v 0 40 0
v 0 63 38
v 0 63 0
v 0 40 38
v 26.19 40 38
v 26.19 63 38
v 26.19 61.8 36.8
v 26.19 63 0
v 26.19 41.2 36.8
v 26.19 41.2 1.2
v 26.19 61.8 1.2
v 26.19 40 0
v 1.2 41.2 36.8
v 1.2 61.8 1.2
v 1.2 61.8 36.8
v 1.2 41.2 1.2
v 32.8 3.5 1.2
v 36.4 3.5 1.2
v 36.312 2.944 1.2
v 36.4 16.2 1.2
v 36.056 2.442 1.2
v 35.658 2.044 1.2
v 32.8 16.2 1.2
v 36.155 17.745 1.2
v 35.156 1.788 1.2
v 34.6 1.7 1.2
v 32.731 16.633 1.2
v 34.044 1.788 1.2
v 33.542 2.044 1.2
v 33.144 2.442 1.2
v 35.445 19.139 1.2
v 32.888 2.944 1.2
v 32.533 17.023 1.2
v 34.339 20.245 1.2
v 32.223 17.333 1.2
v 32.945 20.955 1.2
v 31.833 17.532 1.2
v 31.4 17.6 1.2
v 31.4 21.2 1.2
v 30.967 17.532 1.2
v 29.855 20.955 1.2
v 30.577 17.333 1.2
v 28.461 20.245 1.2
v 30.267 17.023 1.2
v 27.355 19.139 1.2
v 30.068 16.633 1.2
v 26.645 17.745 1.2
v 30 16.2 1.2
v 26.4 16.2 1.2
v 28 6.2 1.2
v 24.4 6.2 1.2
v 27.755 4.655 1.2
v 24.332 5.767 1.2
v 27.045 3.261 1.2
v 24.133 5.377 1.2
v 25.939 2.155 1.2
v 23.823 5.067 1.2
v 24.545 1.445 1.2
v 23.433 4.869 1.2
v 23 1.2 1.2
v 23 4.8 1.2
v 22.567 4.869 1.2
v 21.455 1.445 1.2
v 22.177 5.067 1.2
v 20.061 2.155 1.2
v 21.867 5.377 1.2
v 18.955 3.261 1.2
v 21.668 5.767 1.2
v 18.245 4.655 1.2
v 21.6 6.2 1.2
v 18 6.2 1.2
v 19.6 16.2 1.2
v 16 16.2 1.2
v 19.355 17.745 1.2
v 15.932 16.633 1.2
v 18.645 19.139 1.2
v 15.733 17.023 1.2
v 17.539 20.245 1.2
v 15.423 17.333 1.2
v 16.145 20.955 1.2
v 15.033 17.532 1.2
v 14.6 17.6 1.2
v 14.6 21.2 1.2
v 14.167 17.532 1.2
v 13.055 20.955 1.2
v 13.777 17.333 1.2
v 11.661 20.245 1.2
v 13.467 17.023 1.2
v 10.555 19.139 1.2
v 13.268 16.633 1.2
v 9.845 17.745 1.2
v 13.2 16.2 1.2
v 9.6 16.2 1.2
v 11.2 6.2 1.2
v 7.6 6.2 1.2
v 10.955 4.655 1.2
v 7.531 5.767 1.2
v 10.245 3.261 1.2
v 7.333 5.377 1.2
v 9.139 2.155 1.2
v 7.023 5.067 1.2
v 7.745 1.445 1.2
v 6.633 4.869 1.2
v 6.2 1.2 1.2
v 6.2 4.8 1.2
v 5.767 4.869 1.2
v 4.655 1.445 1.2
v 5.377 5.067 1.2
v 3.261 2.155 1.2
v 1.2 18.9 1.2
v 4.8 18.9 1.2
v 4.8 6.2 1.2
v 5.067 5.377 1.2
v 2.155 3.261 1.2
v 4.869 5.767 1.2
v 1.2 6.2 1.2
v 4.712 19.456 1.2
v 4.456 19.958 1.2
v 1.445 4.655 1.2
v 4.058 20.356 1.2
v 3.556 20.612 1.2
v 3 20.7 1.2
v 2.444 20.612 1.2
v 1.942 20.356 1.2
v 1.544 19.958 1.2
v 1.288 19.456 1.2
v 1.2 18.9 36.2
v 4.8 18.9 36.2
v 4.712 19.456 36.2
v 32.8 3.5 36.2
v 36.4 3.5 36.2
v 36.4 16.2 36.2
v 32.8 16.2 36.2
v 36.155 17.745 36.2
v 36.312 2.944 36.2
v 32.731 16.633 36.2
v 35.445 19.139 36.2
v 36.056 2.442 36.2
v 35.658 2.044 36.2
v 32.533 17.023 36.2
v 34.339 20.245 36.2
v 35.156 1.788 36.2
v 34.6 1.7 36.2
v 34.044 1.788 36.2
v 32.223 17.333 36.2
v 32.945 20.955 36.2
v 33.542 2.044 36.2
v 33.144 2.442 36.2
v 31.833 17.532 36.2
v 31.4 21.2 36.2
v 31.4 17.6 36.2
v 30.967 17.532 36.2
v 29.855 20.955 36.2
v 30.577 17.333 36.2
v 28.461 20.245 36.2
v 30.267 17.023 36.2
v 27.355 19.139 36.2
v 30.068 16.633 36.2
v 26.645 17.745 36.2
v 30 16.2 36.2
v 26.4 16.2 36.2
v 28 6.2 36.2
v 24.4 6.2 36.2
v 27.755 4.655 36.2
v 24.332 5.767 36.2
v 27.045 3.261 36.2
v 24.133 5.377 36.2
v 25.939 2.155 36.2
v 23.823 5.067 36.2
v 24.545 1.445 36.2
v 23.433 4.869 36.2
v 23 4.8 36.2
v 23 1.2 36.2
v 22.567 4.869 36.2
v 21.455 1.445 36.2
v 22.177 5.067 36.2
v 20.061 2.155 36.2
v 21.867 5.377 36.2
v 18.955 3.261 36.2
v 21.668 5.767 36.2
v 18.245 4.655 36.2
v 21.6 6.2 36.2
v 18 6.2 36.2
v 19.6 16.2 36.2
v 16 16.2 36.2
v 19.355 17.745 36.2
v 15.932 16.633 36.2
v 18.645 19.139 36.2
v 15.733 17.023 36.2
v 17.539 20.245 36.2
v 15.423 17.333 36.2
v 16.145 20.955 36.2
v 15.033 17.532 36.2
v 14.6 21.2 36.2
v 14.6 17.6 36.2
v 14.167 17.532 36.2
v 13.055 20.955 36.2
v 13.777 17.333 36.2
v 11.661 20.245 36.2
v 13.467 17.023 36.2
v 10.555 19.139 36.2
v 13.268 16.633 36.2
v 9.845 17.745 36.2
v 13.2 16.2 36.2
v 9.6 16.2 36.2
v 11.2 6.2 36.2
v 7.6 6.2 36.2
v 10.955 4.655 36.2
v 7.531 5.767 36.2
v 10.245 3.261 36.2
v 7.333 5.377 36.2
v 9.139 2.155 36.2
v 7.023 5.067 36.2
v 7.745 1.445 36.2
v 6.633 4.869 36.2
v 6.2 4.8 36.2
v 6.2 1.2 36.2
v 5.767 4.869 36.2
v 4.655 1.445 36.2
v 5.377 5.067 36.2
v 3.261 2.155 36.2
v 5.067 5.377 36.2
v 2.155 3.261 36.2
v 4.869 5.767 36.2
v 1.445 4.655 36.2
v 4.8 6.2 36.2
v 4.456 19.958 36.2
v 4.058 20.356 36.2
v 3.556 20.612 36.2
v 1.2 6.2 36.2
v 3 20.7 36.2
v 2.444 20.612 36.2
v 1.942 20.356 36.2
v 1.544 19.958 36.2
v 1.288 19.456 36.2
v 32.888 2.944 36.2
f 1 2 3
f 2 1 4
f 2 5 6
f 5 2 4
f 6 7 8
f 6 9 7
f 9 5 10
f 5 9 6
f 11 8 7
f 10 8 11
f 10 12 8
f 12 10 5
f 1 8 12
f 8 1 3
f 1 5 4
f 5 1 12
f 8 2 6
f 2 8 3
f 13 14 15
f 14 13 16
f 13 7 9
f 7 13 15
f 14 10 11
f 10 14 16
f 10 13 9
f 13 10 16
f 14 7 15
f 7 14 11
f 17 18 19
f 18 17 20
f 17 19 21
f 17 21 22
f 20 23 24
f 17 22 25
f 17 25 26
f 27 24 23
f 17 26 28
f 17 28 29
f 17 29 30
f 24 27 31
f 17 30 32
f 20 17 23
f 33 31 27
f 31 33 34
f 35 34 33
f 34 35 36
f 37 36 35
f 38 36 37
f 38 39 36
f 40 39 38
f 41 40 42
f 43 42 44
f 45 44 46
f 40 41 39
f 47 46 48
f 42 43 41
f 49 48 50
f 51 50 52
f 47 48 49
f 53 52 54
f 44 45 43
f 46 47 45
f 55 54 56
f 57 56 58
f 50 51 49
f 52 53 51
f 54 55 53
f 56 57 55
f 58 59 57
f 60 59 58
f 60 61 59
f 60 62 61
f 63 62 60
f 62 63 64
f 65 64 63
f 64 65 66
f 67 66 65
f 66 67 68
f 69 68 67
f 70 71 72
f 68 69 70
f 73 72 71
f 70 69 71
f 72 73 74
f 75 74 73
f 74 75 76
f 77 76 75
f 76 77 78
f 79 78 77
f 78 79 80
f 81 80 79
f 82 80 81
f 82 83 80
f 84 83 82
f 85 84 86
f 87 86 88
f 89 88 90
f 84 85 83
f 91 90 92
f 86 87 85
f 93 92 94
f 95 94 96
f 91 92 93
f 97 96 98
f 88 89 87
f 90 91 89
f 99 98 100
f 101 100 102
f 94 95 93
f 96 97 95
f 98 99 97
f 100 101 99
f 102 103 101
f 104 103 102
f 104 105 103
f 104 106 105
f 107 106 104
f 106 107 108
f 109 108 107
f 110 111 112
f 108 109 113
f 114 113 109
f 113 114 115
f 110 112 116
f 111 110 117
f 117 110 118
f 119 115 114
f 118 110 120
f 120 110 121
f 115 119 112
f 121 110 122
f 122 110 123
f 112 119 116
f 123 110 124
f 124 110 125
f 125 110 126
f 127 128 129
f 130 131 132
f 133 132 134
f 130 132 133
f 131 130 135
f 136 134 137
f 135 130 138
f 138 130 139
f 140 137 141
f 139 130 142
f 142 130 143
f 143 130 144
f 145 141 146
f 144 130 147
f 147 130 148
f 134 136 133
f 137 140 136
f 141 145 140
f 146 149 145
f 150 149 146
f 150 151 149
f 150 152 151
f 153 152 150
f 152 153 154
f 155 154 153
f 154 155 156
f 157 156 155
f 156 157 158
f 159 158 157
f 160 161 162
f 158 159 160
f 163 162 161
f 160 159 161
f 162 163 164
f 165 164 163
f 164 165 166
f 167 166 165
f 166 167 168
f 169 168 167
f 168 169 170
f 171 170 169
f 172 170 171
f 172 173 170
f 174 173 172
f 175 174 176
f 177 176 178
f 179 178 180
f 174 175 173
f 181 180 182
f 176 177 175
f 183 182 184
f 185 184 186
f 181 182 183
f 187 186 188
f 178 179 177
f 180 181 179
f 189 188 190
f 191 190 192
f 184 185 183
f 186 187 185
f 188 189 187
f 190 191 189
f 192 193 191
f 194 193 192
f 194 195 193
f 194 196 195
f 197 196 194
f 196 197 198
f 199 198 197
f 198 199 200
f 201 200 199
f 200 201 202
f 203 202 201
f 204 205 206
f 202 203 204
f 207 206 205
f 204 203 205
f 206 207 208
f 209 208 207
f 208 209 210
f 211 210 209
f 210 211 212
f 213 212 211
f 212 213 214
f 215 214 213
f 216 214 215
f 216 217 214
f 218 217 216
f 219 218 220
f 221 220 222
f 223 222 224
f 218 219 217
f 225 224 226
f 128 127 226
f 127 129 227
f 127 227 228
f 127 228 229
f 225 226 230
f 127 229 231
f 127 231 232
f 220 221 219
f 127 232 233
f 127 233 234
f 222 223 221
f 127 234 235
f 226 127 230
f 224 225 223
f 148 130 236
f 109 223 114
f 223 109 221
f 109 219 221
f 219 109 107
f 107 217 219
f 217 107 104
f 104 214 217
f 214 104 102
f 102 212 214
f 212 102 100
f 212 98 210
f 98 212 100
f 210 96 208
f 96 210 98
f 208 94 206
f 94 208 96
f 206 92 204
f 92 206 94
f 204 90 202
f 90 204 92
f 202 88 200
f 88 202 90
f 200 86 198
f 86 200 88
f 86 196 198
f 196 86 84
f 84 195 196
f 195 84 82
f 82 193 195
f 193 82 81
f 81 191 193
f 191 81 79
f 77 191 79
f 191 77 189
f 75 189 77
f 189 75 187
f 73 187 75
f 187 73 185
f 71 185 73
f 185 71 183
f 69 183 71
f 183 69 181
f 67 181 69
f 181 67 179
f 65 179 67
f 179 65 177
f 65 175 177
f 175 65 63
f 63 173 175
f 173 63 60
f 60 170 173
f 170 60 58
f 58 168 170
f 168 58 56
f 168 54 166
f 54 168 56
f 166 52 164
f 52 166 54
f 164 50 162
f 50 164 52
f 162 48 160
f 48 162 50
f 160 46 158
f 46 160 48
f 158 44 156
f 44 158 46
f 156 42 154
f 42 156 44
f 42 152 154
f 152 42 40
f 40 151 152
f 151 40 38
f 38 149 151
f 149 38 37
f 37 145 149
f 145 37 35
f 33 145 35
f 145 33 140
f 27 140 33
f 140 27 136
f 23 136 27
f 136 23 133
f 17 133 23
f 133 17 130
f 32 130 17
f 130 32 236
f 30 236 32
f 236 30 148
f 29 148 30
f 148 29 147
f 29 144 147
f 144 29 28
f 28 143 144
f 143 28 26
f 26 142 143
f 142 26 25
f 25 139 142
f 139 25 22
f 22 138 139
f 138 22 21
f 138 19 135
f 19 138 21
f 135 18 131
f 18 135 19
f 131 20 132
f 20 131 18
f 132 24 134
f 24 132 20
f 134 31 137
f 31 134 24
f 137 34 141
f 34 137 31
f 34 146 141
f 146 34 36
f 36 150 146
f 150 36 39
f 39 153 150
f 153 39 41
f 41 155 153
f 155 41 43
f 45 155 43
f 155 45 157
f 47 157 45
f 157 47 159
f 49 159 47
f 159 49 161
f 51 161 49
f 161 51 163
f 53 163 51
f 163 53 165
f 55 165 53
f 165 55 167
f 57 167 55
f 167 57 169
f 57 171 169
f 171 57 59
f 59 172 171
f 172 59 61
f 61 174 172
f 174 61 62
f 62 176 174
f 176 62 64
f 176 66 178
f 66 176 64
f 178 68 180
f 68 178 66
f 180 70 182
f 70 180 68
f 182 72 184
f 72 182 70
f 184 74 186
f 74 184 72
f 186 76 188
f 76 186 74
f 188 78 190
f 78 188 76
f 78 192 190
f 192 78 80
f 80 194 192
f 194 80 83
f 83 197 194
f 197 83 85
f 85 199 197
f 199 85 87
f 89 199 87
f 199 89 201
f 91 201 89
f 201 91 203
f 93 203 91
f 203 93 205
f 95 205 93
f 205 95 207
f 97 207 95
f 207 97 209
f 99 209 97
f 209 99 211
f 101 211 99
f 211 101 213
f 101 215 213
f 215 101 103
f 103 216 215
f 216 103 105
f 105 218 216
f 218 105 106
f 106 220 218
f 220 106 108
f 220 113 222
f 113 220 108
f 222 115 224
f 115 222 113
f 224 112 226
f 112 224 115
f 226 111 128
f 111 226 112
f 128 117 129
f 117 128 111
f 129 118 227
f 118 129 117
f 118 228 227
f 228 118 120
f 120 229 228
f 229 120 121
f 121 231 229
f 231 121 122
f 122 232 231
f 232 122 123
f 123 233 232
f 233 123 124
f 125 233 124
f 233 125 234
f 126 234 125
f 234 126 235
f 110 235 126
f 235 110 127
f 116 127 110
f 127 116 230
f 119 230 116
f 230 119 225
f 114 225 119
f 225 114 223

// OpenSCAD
// file: ../lib/flat spring.scad
FlatSpring(10, 3, 1, 2, 15, 15, $fn=25);

%cube([FlatSpringLength(10, 3, 1, 2), 1, 15]);

function FlatSpringLength(outer_diameter, wall_thickness, offset_per_loop, loops) = (offset_per_loop*2+(outer_diameter+(outer_diameter - wall_thickness*2)))*loops + (outer_diameter - wall_thickness*2)/2;

module FlatSpring(outer_diameter, wall_thickness, offset_per_loop, loops, width2, height) {
	width = width2 - outer_diameter;
	inner_diameter = outer_diameter - wall_thickness*2;
	per_pair_translate = offset_per_loop*2+(outer_diameter+inner_diameter);
	
	linear_extrude(height) translate([outer_diameter/2, outer_diameter/2]) {
		for (i = [0:loops-1]) {
			translate([per_pair_translate*i,0,0])
			FlatSpringLoopPair(outer_diameter, inner_diameter, wall_thickness, width, offset_per_loop, i == loops-1);
		}
		
		translate([-(wall_thickness+inner_diameter/2), 0, 0]) {
			FlatSpringAcrossEnd(wall_thickness, offset_per_loop, width-0.5, outer_diameter);
		}
		translate([(per_pair_translate*loops)-outer_diameter/2-offset_per_loop, width, 0])  rotate([180,0,0]) {
			FlatSpringAcrossEnd(wall_thickness, offset_per_loop, width-0.5, outer_diameter);
		}
	}
}

module FlatSpringLoopPair(outer_diameter, inner_diameter, wall_thickness, width, offset_per_loop, noend) {
	FlatSpringLoop(outer_diameter, inner_diameter);
	
	translate([inner_diameter/2, 0, 0])
	FlatSpringAcross(wall_thickness, offset_per_loop, width);
	
	translate([offset_per_loop+outer_diameter/2+inner_diameter/2, width, 0]) rotate([180,0,0])
	union() {
		FlatSpringLoop(outer_diameter, inner_diameter);
		if (!noend) {
			translate([inner_diameter/2, 0, 0])
			FlatSpringAcross(wall_thickness, offset_per_loop, width);
		}
	}
}

module FlatSpringAcross(wall_thickness, offset_per_loop, width) {
	polygon([[0,0], [wall_thickness, 0], [wall_thickness+offset_per_loop, width], [offset_per_loop, width]]);
}

module FlatSpringAcrossEnd(wall_thickness, offset_per_loop, width, outer_diameter) {
	FlatSpringAcross(wall_thickness, 0, width+outer_diameter/2-wall_thickness/2);
	translate([wall_thickness/2, width+outer_diameter/2-wall_thickness/2, 0]) circle(d=wall_thickness);
}

module FlatSpringLoop(outer_diameter, inner_diameter) {
	difference() {
		circle(d=outer_diameter);
		union() {
			circle(d=inner_diameter);
			translate([-outer_diameter/2,0,0]) square([outer_diameter, outer_diameter]);
		}
	}
}
// main file
use <../lib/flat spring.scad>;

width = 20;
height = 35;
wallthickness = 1.2;
springWallThickness = 3.6;
springOffset = 2;
outerRadius=5;
tolerance = 0.3;
loops=2;
$fn=20;
topLength = -10;
topOutside = 0;

explode = 40;

translate([wallthickness,wallthickness,wallthickness]) FlatSpring(outerRadius*2, springWallThickness, springOffset, loops, width, height);

l = topLength+FlatSpringLength(outerRadius*2, springWallThickness, springOffset, loops);
w = width+tolerance*2;
h = height+tolerance*2;

translate([0,explode*1,0])
difference() {
	cube([l+wallthickness-0.01, w+wallthickness*2, h + wallthickness*2]);
	translate([wallthickness,wallthickness,wallthickness]) cube([l, w, h]);
}

translate([0,explode*2,0])
translate([wallthickness+l-topLength,wallthickness,wallthickness]) cube([topLength+topOutside, w-tolerance*2, h-tolerance*2]);
